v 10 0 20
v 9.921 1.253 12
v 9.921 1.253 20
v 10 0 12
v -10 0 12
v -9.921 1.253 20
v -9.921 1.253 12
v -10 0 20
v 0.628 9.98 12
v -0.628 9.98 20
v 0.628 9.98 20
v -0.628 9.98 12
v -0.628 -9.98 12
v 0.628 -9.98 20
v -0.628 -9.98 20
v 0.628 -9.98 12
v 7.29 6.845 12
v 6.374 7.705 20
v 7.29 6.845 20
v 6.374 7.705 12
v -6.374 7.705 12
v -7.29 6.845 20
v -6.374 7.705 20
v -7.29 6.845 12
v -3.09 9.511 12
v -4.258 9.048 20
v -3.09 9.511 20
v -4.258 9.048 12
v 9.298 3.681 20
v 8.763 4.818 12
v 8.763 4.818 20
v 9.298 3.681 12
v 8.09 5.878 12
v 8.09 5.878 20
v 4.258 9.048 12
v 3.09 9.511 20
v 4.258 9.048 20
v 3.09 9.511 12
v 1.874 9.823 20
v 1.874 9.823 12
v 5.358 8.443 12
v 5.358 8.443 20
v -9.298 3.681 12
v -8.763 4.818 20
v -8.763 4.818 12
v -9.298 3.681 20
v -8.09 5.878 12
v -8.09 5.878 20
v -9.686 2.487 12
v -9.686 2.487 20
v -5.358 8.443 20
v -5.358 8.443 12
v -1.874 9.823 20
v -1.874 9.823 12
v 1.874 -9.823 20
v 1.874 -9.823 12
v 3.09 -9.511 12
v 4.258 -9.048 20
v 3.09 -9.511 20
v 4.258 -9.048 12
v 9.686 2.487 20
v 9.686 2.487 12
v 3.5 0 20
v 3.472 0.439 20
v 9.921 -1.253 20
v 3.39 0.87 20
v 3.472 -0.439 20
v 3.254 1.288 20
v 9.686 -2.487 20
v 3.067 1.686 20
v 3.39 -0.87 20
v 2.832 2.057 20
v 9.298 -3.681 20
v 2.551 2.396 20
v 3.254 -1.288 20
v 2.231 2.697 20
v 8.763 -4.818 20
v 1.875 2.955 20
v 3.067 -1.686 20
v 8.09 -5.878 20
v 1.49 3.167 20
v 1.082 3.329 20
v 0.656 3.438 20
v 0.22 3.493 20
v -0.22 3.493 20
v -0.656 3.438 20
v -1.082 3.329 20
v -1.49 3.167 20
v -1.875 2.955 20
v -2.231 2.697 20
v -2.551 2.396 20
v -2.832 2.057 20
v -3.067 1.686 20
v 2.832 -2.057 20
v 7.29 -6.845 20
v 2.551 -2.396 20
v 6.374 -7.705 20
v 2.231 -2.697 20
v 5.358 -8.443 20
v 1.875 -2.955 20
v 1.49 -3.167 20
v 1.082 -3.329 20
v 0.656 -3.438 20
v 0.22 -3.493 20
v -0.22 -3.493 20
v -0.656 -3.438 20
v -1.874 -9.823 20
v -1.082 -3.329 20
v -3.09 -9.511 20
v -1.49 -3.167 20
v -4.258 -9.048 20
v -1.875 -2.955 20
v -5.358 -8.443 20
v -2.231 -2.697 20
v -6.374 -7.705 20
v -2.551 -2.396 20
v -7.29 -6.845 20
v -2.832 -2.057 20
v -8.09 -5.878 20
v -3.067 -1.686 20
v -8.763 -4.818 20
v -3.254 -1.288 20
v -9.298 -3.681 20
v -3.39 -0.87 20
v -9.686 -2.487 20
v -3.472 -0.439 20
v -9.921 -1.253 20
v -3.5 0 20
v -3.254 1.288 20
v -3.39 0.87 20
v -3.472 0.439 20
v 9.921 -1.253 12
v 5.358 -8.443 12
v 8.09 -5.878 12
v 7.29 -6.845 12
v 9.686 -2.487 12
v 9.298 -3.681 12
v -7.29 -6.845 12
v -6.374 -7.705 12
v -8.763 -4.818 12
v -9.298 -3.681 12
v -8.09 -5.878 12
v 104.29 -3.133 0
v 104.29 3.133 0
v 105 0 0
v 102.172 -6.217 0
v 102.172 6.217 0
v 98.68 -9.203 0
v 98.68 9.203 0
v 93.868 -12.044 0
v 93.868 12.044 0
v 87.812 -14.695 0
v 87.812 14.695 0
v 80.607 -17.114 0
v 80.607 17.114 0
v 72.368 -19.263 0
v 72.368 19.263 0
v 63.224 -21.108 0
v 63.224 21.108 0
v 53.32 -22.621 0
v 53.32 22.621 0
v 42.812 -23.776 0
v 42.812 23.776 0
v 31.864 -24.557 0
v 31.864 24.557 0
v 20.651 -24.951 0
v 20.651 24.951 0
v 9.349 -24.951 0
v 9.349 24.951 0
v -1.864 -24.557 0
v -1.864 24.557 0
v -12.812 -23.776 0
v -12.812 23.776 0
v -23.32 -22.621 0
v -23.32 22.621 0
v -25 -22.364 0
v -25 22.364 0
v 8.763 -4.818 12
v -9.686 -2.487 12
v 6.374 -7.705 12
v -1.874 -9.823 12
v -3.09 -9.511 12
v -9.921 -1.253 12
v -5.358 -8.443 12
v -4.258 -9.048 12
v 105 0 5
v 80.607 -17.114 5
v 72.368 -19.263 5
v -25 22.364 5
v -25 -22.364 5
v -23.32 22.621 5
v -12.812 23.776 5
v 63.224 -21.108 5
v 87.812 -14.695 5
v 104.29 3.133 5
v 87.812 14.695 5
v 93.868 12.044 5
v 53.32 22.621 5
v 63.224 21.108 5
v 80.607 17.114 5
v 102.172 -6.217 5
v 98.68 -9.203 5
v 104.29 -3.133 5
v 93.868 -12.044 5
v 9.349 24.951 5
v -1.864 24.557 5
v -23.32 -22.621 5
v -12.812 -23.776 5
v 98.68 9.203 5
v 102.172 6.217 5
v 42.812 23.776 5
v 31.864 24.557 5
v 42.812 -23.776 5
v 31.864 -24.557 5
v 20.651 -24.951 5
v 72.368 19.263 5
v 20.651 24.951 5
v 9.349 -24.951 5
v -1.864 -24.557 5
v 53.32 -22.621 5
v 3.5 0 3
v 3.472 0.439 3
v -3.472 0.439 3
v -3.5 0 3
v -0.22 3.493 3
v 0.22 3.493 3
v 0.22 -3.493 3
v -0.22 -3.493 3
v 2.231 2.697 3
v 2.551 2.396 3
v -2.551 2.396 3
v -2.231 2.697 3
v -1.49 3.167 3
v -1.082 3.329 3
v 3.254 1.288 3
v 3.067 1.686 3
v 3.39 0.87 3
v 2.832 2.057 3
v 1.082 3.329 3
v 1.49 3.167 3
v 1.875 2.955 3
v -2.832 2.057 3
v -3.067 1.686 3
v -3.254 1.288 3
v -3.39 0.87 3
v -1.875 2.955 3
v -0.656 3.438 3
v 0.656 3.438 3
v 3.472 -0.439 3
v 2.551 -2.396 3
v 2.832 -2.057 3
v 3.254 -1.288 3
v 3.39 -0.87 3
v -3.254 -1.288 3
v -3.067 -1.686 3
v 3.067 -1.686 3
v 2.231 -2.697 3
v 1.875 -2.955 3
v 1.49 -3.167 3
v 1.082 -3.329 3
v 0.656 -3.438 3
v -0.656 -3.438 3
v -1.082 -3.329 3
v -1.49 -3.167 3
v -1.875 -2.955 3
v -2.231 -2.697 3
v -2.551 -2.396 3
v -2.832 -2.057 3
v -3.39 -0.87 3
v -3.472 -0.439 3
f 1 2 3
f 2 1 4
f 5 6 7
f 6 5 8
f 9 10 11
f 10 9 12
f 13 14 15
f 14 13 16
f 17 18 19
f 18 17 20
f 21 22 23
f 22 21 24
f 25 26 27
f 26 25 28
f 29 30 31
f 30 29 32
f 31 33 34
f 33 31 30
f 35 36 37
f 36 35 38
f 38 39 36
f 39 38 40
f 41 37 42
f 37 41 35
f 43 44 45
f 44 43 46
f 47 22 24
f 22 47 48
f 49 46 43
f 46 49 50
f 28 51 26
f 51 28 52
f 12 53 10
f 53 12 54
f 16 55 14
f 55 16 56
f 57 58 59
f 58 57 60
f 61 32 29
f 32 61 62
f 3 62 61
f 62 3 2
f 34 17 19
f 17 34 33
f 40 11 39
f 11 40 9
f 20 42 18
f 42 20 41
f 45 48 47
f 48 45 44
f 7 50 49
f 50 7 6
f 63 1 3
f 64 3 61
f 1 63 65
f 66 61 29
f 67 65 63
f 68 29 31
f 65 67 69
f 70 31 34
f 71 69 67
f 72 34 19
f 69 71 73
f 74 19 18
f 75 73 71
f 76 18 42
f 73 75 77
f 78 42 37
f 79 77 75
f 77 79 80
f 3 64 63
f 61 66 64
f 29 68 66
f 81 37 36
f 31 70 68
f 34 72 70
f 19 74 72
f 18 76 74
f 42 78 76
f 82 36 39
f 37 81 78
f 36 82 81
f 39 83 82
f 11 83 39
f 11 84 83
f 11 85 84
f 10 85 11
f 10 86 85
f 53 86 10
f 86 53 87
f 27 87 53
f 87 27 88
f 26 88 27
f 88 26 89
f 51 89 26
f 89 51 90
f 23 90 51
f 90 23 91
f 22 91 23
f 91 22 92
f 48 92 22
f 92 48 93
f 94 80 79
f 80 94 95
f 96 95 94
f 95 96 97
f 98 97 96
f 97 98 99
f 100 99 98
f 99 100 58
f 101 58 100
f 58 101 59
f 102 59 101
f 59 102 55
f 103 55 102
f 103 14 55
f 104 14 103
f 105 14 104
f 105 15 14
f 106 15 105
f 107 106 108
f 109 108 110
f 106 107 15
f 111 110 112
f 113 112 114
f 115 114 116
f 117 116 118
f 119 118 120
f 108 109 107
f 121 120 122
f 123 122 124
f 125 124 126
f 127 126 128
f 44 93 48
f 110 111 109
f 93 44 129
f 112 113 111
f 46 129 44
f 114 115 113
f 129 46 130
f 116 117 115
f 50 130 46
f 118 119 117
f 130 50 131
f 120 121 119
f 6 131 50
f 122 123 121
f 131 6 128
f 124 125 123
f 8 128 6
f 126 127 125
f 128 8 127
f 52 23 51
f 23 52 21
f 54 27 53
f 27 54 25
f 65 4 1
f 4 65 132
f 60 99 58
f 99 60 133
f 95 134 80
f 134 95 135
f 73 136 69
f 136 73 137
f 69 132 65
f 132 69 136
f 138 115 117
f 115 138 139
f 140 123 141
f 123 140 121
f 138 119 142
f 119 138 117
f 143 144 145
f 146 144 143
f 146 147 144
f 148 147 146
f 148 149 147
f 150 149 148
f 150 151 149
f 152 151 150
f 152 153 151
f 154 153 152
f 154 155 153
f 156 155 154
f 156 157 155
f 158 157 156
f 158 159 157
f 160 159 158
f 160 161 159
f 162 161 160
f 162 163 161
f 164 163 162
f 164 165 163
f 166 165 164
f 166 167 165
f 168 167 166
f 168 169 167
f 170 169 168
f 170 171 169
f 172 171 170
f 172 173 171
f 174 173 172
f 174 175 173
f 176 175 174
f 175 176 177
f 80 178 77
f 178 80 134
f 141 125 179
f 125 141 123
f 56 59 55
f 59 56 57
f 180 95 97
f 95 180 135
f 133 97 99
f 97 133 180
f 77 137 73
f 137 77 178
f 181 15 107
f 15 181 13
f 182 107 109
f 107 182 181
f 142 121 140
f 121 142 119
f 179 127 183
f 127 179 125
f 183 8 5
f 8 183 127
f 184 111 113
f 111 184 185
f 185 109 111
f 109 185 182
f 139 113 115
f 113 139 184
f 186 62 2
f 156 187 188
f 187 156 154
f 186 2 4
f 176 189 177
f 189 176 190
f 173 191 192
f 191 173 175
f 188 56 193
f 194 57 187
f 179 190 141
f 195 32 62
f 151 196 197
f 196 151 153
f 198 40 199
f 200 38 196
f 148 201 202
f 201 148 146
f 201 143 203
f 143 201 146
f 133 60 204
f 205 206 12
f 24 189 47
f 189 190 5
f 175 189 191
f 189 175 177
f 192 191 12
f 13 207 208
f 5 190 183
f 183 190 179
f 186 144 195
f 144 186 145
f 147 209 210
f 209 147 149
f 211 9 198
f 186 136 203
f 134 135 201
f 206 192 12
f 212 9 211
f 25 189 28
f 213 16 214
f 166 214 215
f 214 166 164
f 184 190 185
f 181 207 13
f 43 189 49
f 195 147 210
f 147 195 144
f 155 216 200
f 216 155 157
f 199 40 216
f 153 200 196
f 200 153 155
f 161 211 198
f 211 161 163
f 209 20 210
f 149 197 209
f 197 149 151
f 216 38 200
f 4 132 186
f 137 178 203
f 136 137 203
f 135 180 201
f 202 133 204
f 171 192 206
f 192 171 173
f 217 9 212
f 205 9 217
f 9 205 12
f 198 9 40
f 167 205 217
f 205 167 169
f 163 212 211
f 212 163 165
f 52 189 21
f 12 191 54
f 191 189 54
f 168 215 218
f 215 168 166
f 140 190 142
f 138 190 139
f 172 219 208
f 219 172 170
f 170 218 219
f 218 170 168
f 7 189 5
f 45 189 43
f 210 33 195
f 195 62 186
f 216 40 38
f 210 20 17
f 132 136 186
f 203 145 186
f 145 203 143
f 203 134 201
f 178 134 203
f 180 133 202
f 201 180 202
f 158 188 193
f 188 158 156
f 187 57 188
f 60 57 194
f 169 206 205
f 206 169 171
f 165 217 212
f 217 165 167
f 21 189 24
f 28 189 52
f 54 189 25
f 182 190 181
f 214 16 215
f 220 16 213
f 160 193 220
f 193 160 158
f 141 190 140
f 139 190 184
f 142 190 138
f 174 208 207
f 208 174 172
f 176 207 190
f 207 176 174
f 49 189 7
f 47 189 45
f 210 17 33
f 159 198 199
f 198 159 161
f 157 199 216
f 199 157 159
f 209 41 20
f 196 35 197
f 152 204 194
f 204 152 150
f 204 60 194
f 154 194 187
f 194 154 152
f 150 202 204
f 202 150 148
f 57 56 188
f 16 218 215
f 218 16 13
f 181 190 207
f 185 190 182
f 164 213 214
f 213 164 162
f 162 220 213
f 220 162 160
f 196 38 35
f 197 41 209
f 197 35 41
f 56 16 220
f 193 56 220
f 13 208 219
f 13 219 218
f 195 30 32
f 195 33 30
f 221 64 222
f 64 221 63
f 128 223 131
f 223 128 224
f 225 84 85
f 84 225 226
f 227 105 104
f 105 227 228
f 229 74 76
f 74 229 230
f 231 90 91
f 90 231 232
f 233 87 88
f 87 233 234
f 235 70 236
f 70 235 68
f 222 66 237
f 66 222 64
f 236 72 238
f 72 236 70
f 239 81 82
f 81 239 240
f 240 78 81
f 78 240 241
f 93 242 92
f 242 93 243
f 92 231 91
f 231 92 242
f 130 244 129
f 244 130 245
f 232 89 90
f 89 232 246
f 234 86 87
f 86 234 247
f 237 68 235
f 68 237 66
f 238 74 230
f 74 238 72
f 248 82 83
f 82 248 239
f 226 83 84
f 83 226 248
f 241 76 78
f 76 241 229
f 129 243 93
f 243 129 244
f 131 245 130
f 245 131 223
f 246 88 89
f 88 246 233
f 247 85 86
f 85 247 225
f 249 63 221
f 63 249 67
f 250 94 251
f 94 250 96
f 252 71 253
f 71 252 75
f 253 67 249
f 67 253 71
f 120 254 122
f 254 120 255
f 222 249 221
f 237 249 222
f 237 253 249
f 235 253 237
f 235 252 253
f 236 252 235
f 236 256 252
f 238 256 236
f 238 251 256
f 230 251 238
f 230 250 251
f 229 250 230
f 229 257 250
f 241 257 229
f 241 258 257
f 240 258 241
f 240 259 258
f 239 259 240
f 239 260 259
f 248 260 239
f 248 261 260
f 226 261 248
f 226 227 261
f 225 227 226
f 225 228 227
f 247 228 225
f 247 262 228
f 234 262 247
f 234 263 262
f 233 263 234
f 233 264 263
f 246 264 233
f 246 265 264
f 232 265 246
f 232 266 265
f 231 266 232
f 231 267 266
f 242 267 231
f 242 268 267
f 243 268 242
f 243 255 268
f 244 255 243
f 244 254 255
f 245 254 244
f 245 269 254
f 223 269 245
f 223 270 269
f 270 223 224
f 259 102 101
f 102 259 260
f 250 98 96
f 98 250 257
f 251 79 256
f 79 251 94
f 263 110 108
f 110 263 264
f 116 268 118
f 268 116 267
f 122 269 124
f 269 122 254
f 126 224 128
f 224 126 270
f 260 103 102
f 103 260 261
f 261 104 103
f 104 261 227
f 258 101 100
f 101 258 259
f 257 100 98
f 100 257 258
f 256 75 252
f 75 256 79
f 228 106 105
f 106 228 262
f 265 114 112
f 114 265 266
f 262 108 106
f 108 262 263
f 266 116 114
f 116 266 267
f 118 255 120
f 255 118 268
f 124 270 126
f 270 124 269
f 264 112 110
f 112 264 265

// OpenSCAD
$fn = 50;

difference() {
   union() {
      cylinder(r=10,h=20);
      hull() {
         cylinder(r=10,h=12);
         translate([-5,0,0]) form();
      }
   }
   translate([0,0,3]) cylinder(d=7,h=30);
}


module form() {
   difference() {
      translate([20,0,0]) linear_extrude(height=5) scale([3.6,1,1]) circle(r=25);
      translate([-200,-100,-10]) cube([180,200,20]);
   }
}
